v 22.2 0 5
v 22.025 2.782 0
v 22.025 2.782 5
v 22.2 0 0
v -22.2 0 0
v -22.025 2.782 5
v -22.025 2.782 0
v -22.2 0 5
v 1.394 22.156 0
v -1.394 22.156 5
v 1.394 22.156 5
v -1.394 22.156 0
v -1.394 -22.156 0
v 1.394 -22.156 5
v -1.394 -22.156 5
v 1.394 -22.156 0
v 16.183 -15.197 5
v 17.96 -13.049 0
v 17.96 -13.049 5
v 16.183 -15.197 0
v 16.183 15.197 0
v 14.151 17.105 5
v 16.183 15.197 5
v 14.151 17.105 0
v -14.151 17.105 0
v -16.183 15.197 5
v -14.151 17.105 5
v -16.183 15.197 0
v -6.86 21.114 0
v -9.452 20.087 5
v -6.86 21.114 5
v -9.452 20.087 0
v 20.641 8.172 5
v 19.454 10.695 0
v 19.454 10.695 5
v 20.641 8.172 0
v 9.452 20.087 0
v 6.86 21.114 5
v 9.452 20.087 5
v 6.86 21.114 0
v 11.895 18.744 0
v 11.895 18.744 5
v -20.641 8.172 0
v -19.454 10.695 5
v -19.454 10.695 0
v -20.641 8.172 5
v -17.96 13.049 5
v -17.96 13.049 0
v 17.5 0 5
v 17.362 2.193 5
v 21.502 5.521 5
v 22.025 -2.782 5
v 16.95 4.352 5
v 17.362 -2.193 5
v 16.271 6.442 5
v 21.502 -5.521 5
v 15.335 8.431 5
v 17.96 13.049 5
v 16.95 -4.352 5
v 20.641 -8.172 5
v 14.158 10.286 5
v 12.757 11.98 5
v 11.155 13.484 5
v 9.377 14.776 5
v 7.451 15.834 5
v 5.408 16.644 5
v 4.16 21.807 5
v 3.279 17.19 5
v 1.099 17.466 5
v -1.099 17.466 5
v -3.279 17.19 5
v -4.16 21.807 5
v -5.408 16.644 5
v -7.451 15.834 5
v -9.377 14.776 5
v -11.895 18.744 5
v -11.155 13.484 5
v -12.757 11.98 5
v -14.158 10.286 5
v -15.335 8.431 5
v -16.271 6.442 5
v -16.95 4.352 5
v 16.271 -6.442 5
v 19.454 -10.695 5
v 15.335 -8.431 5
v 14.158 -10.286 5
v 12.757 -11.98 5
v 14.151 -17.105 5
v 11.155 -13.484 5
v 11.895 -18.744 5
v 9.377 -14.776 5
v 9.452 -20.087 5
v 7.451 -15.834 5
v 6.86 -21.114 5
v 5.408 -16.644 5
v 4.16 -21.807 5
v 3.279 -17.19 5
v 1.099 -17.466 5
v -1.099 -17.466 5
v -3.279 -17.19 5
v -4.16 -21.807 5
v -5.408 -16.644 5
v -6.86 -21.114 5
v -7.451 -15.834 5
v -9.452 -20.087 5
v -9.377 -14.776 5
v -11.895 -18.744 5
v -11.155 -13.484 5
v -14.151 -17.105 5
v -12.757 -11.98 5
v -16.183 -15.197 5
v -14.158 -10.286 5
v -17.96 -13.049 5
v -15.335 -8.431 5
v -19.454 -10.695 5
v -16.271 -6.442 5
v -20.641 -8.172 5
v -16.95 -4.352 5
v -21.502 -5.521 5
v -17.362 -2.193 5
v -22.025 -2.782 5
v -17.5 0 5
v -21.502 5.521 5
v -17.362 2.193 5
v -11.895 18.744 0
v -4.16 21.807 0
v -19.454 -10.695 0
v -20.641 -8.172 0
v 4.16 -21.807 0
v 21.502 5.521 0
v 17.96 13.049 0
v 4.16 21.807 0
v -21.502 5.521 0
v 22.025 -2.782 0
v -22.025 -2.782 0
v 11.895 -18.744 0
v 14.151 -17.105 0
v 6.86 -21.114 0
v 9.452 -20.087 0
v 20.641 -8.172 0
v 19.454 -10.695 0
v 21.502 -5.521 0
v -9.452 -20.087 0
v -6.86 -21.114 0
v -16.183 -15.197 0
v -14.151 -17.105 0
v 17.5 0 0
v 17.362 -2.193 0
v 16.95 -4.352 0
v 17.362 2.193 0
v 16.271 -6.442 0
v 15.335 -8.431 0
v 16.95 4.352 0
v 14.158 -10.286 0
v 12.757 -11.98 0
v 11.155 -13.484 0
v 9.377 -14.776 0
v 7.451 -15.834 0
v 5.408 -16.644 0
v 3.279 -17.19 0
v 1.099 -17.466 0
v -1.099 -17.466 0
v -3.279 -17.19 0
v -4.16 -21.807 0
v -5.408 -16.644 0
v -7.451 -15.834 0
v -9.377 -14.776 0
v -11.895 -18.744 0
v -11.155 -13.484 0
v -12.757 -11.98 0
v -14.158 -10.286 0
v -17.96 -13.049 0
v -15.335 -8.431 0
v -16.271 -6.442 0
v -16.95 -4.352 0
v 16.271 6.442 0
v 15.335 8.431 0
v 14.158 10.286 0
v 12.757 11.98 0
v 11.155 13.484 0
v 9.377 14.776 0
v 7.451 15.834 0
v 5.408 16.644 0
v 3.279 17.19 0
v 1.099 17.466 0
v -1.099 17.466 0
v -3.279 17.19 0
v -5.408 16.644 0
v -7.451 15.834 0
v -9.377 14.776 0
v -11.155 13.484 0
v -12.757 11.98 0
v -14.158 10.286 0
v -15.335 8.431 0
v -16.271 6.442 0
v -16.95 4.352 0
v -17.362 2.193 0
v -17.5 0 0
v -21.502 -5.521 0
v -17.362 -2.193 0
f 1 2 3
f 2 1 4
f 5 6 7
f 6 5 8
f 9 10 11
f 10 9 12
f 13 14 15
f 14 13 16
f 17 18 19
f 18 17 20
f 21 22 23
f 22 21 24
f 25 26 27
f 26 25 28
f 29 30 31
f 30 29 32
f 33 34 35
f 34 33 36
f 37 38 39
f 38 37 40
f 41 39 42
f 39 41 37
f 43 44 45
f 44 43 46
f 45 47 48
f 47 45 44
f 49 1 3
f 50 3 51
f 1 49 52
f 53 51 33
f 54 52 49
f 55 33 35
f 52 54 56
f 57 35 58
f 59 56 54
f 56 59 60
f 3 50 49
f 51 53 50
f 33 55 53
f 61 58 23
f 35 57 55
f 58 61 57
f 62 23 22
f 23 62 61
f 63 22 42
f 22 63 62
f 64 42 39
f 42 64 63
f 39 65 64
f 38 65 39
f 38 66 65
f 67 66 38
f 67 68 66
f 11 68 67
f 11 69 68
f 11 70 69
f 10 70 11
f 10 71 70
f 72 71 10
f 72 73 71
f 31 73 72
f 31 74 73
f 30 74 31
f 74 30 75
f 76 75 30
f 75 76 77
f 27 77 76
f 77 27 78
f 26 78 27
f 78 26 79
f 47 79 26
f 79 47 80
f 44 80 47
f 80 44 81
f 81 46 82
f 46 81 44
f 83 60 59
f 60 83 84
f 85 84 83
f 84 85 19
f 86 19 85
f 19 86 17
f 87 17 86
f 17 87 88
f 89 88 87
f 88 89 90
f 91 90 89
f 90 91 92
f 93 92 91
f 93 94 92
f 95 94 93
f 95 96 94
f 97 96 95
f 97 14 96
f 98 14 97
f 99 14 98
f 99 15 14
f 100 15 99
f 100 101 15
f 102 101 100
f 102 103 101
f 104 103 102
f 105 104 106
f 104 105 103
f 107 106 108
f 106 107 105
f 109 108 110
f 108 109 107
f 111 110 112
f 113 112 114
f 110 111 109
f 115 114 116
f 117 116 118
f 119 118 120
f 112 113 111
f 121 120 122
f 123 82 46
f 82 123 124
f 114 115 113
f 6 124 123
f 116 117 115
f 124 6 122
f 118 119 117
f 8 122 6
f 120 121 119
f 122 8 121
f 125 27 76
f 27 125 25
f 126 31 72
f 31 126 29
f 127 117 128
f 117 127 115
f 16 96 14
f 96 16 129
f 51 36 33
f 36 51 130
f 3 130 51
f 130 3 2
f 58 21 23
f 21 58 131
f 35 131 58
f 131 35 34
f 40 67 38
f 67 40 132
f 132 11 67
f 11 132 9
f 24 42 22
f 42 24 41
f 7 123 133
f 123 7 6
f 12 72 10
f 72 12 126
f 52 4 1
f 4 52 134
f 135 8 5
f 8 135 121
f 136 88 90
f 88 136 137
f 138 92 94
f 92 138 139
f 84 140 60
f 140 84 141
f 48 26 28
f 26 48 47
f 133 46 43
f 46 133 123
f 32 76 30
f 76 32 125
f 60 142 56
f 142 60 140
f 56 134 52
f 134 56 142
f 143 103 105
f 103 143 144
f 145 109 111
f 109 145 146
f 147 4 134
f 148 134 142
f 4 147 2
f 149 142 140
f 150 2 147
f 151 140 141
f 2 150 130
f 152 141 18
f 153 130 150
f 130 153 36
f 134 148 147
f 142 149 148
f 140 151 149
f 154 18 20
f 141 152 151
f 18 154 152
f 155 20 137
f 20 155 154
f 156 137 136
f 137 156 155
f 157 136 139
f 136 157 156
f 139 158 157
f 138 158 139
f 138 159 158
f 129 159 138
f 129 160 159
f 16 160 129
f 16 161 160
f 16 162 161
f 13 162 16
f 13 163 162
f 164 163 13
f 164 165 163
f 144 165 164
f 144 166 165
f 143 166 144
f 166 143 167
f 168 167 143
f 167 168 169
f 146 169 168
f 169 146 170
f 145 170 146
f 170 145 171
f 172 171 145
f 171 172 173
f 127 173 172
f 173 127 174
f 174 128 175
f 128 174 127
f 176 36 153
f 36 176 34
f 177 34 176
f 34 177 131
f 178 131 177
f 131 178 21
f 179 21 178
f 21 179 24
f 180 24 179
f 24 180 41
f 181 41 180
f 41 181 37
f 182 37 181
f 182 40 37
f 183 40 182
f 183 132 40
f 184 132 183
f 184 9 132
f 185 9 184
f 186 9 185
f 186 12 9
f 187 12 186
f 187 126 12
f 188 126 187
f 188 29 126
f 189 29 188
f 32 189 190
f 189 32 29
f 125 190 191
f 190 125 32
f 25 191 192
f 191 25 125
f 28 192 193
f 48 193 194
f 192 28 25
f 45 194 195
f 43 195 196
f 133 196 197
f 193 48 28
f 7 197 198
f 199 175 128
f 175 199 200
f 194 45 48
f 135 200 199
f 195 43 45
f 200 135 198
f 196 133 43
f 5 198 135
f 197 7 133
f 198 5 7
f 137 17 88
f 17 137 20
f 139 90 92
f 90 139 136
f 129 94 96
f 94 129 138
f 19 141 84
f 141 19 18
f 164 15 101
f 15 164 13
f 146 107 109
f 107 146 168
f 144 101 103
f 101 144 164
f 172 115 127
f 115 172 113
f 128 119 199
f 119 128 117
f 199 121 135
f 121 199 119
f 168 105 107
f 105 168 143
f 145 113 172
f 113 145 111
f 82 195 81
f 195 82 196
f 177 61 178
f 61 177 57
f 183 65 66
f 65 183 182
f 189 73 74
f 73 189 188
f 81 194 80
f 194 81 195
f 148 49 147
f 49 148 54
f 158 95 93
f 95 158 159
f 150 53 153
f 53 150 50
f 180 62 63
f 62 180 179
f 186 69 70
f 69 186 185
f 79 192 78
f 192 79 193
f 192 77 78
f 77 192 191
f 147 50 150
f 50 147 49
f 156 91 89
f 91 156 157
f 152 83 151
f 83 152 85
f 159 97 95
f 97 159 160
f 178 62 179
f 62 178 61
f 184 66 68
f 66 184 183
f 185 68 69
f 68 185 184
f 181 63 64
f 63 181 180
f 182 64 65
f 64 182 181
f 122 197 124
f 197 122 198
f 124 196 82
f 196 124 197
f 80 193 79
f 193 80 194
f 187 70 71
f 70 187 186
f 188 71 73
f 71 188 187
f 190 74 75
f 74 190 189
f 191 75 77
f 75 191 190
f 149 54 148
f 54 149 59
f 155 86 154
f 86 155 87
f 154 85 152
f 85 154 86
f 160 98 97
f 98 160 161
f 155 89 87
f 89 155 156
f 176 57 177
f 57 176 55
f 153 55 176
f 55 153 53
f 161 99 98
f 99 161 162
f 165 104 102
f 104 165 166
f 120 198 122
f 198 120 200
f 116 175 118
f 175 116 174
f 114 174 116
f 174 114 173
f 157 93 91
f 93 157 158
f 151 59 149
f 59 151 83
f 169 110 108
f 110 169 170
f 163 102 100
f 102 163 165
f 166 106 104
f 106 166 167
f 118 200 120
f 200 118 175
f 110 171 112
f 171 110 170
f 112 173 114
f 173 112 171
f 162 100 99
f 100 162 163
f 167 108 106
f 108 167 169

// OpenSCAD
$fn = 50;


difference() {
	union() {
		translate(v = [0, 0, 0]) {
			rotate(a = [0, 0, 0]) {
				cylinder(h = 5, r = 22.2000000000);
			}
		}
	}
	union() {
		translate(v = [0, 0, 0]) {
			rotate(a = [0, 0, 0]) {
				cylinder(h = 5, r = 17.5000000000);
			}
		}
	}
}
